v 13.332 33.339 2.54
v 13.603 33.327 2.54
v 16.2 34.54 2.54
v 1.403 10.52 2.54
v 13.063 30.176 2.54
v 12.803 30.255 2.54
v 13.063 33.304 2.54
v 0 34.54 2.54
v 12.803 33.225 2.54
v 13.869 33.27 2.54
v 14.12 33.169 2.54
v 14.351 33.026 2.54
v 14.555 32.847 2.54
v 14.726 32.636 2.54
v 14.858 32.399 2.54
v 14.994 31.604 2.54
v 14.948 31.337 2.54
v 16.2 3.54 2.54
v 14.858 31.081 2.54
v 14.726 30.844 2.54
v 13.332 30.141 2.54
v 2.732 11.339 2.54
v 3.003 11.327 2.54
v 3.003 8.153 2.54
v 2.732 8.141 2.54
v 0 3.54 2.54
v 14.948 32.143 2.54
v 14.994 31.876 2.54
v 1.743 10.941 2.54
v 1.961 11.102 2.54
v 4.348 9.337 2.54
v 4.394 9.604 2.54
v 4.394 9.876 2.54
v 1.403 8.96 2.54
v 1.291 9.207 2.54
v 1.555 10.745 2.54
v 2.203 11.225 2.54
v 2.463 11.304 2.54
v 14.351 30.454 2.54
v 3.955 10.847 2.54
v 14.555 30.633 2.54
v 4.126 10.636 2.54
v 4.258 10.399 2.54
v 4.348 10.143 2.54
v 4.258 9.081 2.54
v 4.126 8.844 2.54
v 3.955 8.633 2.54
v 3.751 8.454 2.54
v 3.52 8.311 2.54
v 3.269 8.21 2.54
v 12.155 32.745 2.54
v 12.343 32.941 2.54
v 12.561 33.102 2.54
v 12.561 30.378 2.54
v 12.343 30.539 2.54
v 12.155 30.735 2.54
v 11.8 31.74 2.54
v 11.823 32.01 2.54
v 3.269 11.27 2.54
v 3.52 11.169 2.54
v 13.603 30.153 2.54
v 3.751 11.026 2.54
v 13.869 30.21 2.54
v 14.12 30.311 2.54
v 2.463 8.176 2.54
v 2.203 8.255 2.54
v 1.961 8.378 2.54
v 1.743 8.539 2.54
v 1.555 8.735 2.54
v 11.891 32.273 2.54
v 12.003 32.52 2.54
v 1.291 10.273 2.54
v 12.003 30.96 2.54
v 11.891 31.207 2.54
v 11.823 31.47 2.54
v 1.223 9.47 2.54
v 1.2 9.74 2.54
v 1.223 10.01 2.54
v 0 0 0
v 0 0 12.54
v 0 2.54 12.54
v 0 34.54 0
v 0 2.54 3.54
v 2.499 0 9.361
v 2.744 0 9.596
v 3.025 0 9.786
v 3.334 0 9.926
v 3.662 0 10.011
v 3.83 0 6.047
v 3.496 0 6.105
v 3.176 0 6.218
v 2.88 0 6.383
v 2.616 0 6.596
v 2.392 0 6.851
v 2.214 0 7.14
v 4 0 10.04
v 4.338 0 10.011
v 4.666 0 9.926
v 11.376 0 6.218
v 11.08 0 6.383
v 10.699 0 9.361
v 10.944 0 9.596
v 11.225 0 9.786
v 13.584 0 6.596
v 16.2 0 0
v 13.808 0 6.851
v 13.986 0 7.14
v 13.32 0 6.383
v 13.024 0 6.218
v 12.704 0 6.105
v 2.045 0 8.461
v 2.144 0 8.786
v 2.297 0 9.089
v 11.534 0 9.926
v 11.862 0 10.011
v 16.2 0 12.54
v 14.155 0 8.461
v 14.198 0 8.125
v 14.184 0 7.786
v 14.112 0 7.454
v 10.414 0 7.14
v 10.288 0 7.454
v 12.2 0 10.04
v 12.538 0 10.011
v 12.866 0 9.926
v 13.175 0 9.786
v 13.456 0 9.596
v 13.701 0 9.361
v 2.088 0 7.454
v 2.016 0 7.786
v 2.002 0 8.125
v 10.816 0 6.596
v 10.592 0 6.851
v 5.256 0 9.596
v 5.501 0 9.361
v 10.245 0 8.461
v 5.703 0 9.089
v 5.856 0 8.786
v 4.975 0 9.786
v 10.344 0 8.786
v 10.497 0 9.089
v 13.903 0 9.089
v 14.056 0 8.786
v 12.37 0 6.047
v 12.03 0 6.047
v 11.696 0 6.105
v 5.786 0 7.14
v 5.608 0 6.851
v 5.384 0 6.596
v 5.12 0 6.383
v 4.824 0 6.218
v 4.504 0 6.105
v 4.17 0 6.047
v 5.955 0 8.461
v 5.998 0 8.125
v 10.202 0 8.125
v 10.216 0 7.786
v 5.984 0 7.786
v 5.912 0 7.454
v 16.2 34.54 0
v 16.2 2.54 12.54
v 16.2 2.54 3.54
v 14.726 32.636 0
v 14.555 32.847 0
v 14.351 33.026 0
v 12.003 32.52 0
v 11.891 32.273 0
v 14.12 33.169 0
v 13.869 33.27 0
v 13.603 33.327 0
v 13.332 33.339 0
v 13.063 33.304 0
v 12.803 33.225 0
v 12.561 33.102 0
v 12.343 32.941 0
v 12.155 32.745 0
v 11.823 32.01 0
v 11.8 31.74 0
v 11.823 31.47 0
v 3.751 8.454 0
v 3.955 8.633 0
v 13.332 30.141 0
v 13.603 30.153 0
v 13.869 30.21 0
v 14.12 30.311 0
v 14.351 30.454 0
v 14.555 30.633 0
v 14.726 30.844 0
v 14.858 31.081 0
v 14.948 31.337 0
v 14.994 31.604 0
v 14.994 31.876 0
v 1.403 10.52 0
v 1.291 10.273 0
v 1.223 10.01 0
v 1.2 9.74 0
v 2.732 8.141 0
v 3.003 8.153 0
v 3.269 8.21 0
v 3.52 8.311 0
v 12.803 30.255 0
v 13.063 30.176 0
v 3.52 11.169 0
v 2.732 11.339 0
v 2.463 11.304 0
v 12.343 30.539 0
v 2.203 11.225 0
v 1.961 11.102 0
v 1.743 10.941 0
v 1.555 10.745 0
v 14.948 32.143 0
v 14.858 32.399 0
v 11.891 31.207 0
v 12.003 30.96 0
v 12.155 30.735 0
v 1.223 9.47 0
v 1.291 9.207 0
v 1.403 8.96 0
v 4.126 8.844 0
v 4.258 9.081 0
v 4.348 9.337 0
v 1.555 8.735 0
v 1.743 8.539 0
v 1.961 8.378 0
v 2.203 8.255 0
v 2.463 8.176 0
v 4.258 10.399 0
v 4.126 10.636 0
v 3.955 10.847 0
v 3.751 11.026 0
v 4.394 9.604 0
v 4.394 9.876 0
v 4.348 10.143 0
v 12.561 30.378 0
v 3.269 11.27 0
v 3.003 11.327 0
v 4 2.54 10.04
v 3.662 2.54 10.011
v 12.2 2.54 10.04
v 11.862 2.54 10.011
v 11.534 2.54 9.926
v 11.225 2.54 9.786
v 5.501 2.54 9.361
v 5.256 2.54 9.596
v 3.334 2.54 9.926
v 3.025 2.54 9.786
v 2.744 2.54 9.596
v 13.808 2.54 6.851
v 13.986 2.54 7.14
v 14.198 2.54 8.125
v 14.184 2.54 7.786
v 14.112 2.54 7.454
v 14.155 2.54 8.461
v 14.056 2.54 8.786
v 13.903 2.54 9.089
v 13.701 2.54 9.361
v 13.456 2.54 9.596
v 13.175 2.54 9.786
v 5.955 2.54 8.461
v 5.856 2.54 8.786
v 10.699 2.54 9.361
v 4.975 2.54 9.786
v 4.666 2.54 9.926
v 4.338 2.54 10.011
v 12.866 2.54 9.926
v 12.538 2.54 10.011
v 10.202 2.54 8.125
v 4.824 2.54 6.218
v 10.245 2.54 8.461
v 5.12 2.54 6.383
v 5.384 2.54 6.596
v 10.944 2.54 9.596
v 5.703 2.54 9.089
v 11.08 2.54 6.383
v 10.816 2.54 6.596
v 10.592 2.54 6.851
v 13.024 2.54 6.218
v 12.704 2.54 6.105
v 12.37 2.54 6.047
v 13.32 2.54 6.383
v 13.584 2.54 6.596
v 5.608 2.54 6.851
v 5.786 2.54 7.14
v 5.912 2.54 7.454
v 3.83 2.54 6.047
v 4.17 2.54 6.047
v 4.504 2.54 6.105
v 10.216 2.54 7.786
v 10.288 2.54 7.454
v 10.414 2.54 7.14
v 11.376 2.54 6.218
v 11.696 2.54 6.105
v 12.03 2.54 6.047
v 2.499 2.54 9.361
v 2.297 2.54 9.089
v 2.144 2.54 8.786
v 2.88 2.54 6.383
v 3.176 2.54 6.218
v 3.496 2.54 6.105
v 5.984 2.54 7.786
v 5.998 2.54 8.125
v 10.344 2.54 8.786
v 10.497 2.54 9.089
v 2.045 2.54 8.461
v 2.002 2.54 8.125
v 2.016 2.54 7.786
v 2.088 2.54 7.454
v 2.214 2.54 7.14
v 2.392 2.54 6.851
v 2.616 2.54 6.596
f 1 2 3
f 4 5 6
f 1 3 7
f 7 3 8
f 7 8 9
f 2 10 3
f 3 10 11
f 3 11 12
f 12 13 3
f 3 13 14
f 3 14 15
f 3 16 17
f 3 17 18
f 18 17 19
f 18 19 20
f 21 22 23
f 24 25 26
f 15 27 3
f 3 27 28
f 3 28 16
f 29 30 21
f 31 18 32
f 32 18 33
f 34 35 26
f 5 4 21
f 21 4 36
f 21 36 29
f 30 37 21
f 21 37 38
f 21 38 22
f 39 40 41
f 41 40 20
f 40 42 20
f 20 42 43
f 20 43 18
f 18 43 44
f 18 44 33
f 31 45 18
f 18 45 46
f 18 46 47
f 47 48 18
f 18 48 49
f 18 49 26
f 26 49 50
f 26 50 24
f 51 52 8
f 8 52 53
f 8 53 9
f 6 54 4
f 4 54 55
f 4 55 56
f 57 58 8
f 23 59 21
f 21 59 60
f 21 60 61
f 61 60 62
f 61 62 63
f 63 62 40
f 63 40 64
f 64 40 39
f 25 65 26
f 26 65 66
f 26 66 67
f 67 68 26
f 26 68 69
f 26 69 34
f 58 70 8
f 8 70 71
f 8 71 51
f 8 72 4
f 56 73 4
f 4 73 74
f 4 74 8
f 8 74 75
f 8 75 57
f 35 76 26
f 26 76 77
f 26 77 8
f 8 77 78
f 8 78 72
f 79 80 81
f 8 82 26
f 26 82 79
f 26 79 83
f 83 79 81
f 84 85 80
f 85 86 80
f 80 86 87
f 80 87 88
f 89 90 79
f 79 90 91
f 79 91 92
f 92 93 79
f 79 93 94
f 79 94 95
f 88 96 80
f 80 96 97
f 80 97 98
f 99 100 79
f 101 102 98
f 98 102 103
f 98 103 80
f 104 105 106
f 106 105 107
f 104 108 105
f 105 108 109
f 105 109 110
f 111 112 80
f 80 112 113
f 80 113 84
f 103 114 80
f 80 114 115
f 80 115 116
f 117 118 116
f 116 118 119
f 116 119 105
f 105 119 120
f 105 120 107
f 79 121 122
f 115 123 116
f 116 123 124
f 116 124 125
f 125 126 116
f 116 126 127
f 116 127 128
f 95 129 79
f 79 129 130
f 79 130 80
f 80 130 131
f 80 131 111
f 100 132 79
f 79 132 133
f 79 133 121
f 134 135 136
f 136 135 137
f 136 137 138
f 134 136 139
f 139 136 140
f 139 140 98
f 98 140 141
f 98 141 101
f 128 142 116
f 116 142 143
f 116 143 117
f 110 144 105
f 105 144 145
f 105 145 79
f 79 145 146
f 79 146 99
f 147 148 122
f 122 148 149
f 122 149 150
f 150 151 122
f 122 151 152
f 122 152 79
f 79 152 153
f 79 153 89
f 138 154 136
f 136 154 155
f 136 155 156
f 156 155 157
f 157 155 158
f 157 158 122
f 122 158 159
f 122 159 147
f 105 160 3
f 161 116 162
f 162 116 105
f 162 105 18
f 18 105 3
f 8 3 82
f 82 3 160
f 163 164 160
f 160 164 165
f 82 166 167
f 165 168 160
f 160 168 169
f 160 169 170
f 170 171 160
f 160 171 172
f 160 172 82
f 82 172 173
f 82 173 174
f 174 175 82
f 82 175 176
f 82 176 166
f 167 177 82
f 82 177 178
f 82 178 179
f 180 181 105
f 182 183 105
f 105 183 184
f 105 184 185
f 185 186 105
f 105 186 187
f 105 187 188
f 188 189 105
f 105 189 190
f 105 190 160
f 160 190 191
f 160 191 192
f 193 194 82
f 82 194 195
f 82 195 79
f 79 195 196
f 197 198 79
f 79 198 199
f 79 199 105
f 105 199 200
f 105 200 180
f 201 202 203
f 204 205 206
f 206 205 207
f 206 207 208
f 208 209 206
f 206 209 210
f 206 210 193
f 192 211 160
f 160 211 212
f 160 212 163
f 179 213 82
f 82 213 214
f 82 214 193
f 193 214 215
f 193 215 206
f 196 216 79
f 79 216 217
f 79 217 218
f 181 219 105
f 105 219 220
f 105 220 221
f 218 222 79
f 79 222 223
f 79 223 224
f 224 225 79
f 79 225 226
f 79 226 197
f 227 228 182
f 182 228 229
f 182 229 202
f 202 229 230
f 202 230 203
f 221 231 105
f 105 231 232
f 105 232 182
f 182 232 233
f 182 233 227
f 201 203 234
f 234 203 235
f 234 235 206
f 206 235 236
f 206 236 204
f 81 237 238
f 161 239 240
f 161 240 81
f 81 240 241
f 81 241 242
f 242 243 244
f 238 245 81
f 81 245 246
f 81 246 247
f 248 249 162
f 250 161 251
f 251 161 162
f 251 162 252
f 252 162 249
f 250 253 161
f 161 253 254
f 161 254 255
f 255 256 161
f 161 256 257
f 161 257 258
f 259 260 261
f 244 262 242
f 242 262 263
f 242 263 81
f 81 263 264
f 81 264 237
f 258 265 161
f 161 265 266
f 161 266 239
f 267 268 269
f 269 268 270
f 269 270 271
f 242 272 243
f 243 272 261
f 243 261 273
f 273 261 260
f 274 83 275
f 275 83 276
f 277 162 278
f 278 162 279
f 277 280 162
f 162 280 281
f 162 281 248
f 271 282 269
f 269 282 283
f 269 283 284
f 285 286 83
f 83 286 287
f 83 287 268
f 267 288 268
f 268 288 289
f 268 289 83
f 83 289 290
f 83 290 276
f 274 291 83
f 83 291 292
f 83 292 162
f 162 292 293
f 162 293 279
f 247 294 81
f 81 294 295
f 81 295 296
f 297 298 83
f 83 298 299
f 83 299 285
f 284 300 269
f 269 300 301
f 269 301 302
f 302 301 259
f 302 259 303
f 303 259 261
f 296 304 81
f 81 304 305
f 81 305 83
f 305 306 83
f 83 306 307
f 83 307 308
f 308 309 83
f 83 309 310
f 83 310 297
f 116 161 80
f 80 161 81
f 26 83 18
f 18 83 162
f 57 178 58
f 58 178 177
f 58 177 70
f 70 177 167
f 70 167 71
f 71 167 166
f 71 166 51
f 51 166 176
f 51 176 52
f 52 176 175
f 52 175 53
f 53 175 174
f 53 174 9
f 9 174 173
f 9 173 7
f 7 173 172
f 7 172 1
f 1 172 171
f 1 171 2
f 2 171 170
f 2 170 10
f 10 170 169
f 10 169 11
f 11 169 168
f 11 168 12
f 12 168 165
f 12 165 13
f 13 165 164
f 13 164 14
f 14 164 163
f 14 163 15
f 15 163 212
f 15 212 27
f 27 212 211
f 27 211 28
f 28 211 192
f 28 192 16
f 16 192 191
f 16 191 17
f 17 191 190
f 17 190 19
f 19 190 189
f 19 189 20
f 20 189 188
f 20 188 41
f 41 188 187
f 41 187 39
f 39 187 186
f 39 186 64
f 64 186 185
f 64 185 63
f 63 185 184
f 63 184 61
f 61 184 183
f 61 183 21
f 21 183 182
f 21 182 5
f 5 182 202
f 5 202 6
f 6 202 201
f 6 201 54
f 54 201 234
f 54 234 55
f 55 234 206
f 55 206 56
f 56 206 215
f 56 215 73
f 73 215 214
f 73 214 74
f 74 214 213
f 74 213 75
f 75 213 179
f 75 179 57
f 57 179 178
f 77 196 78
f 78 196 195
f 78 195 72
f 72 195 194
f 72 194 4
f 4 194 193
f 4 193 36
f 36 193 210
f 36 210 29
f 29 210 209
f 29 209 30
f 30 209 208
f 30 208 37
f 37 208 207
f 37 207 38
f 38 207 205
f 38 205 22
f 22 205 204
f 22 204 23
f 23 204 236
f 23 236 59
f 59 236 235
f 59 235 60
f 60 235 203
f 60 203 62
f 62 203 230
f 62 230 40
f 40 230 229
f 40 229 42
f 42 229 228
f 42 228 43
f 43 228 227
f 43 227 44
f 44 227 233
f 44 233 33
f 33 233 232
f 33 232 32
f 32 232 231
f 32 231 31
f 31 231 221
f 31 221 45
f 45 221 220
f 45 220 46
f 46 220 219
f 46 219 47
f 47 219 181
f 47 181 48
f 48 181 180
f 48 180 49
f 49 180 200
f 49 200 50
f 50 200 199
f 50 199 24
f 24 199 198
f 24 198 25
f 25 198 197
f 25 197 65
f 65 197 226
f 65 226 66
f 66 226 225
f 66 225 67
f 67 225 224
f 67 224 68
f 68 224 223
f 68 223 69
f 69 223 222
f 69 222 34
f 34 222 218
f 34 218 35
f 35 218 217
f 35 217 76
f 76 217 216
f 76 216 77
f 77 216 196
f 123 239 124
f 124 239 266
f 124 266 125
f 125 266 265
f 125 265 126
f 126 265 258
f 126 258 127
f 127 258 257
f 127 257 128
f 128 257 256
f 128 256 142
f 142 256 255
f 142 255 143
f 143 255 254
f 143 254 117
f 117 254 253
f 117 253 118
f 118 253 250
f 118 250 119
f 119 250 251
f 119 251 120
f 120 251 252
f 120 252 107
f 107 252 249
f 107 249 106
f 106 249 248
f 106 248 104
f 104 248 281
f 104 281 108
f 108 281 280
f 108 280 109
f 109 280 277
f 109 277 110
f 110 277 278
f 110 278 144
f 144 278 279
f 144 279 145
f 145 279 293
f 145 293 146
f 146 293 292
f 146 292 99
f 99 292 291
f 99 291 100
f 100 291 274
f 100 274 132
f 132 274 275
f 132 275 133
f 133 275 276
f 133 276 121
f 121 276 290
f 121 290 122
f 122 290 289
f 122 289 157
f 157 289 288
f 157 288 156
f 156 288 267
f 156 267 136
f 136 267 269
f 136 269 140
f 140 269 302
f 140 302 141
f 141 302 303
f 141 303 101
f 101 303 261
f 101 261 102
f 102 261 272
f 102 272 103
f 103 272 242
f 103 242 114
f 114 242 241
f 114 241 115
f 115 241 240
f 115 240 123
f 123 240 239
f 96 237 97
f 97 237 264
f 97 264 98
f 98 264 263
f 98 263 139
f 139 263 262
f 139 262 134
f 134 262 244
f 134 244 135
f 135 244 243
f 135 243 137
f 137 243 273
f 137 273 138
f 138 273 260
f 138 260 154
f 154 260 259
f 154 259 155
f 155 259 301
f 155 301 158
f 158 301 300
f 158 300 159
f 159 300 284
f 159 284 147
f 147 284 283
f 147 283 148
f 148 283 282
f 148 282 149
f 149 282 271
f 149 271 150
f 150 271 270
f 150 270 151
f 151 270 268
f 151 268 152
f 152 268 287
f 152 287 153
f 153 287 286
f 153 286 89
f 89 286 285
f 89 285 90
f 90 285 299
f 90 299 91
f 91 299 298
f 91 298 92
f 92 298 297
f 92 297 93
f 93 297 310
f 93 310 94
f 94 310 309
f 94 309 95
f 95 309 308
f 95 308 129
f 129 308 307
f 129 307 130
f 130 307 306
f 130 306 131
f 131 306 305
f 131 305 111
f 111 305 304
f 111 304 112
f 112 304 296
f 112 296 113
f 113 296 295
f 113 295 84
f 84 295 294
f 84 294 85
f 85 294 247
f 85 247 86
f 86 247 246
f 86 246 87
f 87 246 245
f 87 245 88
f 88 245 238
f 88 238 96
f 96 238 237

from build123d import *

# Parameters (mm, degrees)
SKETCH1_W           = 16.2
SKETCH1_H           = 34.54
BOSS_EXTRUDE1_DEPTH = 2.54
SKETCH2_W           = 16.2
SKETCH2_H           = 2.54
BOSS_EXTRUDE2_DEPTH = 10
CHAMFER1_SIZE       = 1
SKETCH4_R           = 1.6
CUT_EXTRUDE1_DEPTH  = 2.54
SKETCH5_R           = 2
CUT_EXTRUDE2_DEPTH  = 3.54


with BuildPart() as part:
    # Sketch1 → Boss-Extrude1 (new body)
    with BuildSketch(Plane.XY):
        with Locations((8.1, 17.27)):
            Rectangle(SKETCH1_W, SKETCH1_H)
    extrude(amount=BOSS_EXTRUDE1_DEPTH)

    # Sketch2 → Boss-Extrude2 (add)
    with BuildSketch(Plane.XY.offset(2.54)):
        with Locations((8.1, 1.27)):
            Rectangle(SKETCH2_W, SKETCH2_H)
    extrude(amount=BOSS_EXTRUDE2_DEPTH)

    # Chamfer1
    chamfer1_edges = [part.edges().sort_by_distance(p)[0] for p in [
        (8.1, 2.54, 2.54),
    ]]
    chamfer(chamfer1_edges, length=CHAMFER1_SIZE)

    # Sketch4 → Cut-Extrude1 (cut)
    with BuildSketch(Plane(origin=(0, 0, 0), x_dir=(-1, 0, 0), z_dir=(0, 0, -1))):
        with Locations((-13.4, 31.74)):
            Circle(SKETCH4_R)
        with Locations((-2.8, 9.74)):
            Circle(SKETCH4_R)
    extrude(amount=-CUT_EXTRUDE1_DEPTH, mode=Mode.SUBTRACT)

    # Sketch5 → Cut-Extrude2 (cut, through all)
    with BuildSketch(Plane(origin=(0, 2.54, 0), x_dir=(1, 0, 0), z_dir=(0, 1, 0))):
        with Locations((12.2, -8.04)):
            Circle(SKETCH5_R)
        with Locations((4, -8.04)):
            Circle(SKETCH5_R)
    extrude(amount=-CUT_EXTRUDE2_DEPTH, mode=Mode.SUBTRACT)


solid = part.part
